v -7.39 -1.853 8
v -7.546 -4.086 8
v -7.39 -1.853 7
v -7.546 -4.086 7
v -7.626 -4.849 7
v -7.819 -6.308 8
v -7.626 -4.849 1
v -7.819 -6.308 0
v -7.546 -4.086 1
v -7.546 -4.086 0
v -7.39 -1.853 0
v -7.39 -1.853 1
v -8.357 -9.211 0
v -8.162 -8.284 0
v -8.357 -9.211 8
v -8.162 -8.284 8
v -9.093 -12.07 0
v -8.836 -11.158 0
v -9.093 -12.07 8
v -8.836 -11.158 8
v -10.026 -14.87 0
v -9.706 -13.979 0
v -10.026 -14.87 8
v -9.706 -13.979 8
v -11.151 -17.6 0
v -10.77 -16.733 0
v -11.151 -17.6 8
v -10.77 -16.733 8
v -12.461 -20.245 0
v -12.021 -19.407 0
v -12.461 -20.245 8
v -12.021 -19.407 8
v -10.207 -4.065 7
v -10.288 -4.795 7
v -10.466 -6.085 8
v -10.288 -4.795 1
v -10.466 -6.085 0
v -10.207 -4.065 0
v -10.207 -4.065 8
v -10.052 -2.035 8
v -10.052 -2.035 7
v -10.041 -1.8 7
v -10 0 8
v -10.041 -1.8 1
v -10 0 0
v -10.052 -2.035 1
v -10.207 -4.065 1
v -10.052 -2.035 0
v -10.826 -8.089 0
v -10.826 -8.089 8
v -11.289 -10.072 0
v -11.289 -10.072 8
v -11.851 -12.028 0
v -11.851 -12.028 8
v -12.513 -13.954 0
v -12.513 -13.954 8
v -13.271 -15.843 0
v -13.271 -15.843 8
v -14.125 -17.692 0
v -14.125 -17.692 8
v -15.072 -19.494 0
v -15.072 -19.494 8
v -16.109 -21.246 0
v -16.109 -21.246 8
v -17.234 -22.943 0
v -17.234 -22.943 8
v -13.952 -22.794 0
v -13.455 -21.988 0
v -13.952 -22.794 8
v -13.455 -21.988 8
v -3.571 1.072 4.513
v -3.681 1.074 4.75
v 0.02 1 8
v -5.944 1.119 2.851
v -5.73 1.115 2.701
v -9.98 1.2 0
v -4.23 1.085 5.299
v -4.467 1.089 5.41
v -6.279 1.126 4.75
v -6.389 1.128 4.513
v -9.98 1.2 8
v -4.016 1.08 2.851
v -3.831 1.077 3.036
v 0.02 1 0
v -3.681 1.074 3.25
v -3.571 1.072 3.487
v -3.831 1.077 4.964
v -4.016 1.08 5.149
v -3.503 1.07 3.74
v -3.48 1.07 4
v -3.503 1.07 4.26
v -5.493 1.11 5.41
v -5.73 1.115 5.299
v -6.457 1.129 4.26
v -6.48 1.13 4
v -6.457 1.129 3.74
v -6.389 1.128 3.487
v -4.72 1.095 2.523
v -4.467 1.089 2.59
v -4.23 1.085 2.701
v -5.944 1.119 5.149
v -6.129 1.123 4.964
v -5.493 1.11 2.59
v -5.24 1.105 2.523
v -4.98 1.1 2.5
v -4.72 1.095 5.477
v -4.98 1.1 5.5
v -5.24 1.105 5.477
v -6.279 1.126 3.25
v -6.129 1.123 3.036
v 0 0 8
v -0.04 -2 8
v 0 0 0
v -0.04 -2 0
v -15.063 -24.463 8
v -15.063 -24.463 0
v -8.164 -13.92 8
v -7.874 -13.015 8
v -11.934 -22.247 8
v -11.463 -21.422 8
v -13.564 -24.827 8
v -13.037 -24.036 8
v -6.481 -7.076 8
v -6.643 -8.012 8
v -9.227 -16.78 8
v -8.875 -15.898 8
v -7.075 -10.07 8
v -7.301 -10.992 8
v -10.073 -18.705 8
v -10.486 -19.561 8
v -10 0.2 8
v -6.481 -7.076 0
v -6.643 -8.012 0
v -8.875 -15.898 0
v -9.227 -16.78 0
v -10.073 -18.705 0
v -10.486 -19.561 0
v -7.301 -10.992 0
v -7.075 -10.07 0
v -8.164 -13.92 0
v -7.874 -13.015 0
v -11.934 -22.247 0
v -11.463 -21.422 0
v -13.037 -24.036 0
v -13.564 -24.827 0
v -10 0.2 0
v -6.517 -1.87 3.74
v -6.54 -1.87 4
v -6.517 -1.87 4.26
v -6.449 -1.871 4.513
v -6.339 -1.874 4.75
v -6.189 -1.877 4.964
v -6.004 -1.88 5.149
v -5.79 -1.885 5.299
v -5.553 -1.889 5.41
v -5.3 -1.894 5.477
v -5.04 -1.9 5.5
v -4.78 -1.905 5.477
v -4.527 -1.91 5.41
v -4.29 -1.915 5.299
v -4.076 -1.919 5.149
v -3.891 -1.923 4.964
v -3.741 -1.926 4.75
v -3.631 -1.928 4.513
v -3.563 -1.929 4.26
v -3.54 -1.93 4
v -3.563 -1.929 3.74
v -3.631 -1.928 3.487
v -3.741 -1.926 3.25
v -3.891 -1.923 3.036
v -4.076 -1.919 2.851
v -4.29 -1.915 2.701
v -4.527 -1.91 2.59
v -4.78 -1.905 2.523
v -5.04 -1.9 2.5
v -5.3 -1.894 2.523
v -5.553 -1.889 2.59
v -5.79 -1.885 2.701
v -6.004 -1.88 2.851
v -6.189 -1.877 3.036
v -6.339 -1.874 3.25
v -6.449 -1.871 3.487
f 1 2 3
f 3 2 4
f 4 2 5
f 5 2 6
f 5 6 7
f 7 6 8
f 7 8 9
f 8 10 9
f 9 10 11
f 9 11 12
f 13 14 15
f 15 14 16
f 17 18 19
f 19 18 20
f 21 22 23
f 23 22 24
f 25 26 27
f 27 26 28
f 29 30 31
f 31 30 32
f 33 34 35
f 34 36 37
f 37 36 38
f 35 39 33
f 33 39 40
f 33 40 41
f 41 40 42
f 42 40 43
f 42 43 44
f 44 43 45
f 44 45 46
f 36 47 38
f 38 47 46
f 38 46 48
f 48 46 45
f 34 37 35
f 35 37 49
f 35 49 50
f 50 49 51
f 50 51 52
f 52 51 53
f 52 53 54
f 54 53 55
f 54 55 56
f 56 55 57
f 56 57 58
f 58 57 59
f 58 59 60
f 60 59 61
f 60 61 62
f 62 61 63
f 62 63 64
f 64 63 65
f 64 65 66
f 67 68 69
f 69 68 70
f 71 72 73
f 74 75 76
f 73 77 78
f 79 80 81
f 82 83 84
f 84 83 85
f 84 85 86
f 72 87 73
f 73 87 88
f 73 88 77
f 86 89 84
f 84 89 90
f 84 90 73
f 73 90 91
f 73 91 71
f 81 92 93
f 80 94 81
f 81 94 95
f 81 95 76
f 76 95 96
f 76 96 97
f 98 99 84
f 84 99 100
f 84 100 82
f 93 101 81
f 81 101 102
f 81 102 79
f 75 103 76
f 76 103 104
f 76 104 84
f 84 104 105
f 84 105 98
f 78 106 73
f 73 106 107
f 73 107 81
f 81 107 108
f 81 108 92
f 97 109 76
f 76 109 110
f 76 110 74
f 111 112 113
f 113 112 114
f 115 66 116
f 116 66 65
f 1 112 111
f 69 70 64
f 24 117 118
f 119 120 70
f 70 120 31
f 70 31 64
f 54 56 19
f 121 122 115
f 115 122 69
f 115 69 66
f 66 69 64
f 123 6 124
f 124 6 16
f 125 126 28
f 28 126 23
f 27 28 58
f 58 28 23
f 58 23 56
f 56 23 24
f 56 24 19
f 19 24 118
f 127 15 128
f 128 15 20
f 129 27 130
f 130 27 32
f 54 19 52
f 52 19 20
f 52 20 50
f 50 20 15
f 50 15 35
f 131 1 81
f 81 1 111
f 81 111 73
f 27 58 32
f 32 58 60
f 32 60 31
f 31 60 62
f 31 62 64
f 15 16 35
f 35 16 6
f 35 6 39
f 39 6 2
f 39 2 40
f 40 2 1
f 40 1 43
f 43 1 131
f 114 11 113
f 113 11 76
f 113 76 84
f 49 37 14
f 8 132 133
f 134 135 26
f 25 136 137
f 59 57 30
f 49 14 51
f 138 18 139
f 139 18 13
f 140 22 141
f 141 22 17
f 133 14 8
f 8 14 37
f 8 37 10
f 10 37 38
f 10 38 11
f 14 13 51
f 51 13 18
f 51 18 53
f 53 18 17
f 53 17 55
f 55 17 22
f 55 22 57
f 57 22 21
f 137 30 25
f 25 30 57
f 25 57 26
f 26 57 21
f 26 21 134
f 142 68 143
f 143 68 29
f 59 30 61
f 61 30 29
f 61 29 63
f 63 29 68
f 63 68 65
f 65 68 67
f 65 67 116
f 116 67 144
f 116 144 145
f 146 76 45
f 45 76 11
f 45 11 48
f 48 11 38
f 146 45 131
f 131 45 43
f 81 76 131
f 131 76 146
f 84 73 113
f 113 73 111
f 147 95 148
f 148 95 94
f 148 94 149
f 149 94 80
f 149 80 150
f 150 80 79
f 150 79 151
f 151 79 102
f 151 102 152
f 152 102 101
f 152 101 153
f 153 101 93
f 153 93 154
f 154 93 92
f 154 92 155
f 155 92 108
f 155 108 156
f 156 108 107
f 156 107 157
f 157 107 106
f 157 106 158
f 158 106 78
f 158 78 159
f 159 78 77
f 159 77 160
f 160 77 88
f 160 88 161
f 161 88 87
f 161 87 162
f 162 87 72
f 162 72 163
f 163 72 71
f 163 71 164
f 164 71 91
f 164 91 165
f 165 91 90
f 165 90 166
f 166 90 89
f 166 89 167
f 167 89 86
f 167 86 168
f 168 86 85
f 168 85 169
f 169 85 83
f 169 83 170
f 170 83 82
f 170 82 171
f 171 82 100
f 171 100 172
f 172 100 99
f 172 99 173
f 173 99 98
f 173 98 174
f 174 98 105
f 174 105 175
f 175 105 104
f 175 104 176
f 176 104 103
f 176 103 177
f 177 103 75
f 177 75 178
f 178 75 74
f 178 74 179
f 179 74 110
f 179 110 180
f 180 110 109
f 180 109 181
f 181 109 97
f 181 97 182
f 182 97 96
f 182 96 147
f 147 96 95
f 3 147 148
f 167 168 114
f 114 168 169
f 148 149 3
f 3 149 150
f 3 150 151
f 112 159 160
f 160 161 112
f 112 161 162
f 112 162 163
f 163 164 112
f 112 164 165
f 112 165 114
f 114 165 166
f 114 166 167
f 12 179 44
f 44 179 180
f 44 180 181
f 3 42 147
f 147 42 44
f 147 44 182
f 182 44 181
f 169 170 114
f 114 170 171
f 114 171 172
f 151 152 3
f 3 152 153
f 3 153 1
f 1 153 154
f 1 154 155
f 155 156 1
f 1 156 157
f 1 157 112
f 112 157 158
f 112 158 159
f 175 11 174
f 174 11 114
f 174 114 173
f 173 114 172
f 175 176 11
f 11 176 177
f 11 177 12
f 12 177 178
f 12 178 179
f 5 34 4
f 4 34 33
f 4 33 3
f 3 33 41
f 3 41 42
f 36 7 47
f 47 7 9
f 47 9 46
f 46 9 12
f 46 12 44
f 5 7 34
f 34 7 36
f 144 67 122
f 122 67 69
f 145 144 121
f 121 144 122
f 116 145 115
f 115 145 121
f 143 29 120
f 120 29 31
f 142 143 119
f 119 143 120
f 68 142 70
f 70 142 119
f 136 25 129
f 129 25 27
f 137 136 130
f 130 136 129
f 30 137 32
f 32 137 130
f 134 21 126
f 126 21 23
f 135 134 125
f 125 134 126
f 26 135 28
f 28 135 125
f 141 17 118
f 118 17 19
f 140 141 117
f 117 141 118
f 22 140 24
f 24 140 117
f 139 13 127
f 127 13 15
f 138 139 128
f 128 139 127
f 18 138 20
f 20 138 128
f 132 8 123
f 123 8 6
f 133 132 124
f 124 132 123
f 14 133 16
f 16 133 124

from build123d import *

# Parameters (mm, degrees)
EXTRUDE1_DEPTH    = 8
EXTRUDE5_DEPTH    = 8
SKETCH4_W         = 10.001997138
SKETCH4_H         = 8
EXTRUDE6_DEPTH    = 1
SKETCH2_R         = 1.5
EXTRUDE2_DEPTH    = 3
EXTRUDE7_DEPTH    = 9
SKETCH6_W         = 4.34249483
SKETCH6_H         = 6
EXTRUDE8_DEPTH    = 3
EXTRUDE9_DEPTH    = 8
CIRPATTERN1_COUNT = 7
CIRPATTERN1_ANGLE = 23.8


with BuildPart() as part:
    # Sketch1 → Extrude1 (new body)
    with BuildSketch(Plane.XY):
        with BuildLine():
            Line((0, 0), (-10, 0))
            ThreePointArc((-10, 0), (-11.85132197, -12.02823198), (-17.233918228, -22.943057454))
            Line((-17.233918228, -22.943057454), (-9.042397786, -28.678821818))
            ThreePointArc((-9.042397786, -28.678821818), (-2.314152463, -15.035289975), (0, 0))
        make_face()
    extrude(amount=EXTRUDE1_DEPTH)

    # Sketch3 → Extrude5 (add)
    with BuildSketch(Plane.XY):
        Polygon((-10, 0), (-10, 0.199866806), (0, 0), align=None)
    extrude(amount=EXTRUDE5_DEPTH)

    # Sketch4 → Extrude6 (add)
    with BuildSketch(Plane(origin=(0, 0, 0), x_dir=(-0.999800326, 0.01998269, 0), z_dir=(0.01998269, 0.999800326, 0))):
        with Locations((5.000998569, 4)):
            Rectangle(SKETCH4_W, SKETCH4_H)
    extrude(amount=EXTRUDE6_DEPTH)

    # Sketch2 → Extrude2 (cut)
    with BuildSketch(Plane(origin=(0.01998269, 0.999800326, 0), x_dir=(0.999800326, -0.01998269, 0), z_dir=(-0.01998269, -0.999800326, 0))):
        with Locations((-5.000998569, 4)):
            Circle(SKETCH2_R)
    extrude(amount=EXTRUDE2_DEPTH, mode=Mode.SUBTRACT)

    # Sketch5 → Extrude7 (cut, through all)
    with BuildSketch(Plane.XY.offset(8)):
        with BuildLine():
            Line((-0.04, -1.99959996), (-7.39025898, -1.852692681))
            ThreePointArc((-7.39025898, -1.852692681), (-9.612195577, -13.705756232), (-15.063165311, -24.46303501))
            Line((-15.063165311, -24.46303501), (-9.042397786, -28.678821818))
            Line((-9.042397786, -28.678821818), (-2.903131431, -26.123748854))
            Line((-2.903131431, -26.123748854), (1.597548849, -2.850180748))
            Line((1.597548849, -2.850180748), (-0.04, -1.99959996))
        make_face()
    extrude(amount=-EXTRUDE7_DEPTH, mode=Mode.SUBTRACT)

    # Sketch6 → Extrude8 (cut)
    with BuildSketch(Plane(origin=(-0.03996538, -1.999600652, 0), x_dir=(0.999800326, -0.01998269, 0), z_dir=(-0.01998269, -0.999800326, 0))):
        with Locations((-9.52300897, 4)):
            Rectangle(SKETCH6_W, SKETCH6_H)
    extrude(amount=EXTRUDE8_DEPTH, mode=Mode.SUBTRACT)

    # Sketch7 → Extrude9 (add)
    with BuildSketch(Plane.XY.offset(8)):
        Polygon((-15.063165311, -24.46303501), (-13.5637082, -24.827254247), (-13.037257571, -24.036463671), (-13.951792747, -22.793623096), align=None)
    extrude9 = extrude(amount=-EXTRUDE9_DEPTH)

    # CirPattern1: Extrude9 ×7 about axis
    cirpattern1_axis = Axis((-50, 0, 0), (0, 0, 1))
    for i in range(1, CIRPATTERN1_COUNT):
        add(extrude9.rotate(cirpattern1_axis, i * CIRPATTERN1_ANGLE / (CIRPATTERN1_COUNT - 1)))


solid = part.part
